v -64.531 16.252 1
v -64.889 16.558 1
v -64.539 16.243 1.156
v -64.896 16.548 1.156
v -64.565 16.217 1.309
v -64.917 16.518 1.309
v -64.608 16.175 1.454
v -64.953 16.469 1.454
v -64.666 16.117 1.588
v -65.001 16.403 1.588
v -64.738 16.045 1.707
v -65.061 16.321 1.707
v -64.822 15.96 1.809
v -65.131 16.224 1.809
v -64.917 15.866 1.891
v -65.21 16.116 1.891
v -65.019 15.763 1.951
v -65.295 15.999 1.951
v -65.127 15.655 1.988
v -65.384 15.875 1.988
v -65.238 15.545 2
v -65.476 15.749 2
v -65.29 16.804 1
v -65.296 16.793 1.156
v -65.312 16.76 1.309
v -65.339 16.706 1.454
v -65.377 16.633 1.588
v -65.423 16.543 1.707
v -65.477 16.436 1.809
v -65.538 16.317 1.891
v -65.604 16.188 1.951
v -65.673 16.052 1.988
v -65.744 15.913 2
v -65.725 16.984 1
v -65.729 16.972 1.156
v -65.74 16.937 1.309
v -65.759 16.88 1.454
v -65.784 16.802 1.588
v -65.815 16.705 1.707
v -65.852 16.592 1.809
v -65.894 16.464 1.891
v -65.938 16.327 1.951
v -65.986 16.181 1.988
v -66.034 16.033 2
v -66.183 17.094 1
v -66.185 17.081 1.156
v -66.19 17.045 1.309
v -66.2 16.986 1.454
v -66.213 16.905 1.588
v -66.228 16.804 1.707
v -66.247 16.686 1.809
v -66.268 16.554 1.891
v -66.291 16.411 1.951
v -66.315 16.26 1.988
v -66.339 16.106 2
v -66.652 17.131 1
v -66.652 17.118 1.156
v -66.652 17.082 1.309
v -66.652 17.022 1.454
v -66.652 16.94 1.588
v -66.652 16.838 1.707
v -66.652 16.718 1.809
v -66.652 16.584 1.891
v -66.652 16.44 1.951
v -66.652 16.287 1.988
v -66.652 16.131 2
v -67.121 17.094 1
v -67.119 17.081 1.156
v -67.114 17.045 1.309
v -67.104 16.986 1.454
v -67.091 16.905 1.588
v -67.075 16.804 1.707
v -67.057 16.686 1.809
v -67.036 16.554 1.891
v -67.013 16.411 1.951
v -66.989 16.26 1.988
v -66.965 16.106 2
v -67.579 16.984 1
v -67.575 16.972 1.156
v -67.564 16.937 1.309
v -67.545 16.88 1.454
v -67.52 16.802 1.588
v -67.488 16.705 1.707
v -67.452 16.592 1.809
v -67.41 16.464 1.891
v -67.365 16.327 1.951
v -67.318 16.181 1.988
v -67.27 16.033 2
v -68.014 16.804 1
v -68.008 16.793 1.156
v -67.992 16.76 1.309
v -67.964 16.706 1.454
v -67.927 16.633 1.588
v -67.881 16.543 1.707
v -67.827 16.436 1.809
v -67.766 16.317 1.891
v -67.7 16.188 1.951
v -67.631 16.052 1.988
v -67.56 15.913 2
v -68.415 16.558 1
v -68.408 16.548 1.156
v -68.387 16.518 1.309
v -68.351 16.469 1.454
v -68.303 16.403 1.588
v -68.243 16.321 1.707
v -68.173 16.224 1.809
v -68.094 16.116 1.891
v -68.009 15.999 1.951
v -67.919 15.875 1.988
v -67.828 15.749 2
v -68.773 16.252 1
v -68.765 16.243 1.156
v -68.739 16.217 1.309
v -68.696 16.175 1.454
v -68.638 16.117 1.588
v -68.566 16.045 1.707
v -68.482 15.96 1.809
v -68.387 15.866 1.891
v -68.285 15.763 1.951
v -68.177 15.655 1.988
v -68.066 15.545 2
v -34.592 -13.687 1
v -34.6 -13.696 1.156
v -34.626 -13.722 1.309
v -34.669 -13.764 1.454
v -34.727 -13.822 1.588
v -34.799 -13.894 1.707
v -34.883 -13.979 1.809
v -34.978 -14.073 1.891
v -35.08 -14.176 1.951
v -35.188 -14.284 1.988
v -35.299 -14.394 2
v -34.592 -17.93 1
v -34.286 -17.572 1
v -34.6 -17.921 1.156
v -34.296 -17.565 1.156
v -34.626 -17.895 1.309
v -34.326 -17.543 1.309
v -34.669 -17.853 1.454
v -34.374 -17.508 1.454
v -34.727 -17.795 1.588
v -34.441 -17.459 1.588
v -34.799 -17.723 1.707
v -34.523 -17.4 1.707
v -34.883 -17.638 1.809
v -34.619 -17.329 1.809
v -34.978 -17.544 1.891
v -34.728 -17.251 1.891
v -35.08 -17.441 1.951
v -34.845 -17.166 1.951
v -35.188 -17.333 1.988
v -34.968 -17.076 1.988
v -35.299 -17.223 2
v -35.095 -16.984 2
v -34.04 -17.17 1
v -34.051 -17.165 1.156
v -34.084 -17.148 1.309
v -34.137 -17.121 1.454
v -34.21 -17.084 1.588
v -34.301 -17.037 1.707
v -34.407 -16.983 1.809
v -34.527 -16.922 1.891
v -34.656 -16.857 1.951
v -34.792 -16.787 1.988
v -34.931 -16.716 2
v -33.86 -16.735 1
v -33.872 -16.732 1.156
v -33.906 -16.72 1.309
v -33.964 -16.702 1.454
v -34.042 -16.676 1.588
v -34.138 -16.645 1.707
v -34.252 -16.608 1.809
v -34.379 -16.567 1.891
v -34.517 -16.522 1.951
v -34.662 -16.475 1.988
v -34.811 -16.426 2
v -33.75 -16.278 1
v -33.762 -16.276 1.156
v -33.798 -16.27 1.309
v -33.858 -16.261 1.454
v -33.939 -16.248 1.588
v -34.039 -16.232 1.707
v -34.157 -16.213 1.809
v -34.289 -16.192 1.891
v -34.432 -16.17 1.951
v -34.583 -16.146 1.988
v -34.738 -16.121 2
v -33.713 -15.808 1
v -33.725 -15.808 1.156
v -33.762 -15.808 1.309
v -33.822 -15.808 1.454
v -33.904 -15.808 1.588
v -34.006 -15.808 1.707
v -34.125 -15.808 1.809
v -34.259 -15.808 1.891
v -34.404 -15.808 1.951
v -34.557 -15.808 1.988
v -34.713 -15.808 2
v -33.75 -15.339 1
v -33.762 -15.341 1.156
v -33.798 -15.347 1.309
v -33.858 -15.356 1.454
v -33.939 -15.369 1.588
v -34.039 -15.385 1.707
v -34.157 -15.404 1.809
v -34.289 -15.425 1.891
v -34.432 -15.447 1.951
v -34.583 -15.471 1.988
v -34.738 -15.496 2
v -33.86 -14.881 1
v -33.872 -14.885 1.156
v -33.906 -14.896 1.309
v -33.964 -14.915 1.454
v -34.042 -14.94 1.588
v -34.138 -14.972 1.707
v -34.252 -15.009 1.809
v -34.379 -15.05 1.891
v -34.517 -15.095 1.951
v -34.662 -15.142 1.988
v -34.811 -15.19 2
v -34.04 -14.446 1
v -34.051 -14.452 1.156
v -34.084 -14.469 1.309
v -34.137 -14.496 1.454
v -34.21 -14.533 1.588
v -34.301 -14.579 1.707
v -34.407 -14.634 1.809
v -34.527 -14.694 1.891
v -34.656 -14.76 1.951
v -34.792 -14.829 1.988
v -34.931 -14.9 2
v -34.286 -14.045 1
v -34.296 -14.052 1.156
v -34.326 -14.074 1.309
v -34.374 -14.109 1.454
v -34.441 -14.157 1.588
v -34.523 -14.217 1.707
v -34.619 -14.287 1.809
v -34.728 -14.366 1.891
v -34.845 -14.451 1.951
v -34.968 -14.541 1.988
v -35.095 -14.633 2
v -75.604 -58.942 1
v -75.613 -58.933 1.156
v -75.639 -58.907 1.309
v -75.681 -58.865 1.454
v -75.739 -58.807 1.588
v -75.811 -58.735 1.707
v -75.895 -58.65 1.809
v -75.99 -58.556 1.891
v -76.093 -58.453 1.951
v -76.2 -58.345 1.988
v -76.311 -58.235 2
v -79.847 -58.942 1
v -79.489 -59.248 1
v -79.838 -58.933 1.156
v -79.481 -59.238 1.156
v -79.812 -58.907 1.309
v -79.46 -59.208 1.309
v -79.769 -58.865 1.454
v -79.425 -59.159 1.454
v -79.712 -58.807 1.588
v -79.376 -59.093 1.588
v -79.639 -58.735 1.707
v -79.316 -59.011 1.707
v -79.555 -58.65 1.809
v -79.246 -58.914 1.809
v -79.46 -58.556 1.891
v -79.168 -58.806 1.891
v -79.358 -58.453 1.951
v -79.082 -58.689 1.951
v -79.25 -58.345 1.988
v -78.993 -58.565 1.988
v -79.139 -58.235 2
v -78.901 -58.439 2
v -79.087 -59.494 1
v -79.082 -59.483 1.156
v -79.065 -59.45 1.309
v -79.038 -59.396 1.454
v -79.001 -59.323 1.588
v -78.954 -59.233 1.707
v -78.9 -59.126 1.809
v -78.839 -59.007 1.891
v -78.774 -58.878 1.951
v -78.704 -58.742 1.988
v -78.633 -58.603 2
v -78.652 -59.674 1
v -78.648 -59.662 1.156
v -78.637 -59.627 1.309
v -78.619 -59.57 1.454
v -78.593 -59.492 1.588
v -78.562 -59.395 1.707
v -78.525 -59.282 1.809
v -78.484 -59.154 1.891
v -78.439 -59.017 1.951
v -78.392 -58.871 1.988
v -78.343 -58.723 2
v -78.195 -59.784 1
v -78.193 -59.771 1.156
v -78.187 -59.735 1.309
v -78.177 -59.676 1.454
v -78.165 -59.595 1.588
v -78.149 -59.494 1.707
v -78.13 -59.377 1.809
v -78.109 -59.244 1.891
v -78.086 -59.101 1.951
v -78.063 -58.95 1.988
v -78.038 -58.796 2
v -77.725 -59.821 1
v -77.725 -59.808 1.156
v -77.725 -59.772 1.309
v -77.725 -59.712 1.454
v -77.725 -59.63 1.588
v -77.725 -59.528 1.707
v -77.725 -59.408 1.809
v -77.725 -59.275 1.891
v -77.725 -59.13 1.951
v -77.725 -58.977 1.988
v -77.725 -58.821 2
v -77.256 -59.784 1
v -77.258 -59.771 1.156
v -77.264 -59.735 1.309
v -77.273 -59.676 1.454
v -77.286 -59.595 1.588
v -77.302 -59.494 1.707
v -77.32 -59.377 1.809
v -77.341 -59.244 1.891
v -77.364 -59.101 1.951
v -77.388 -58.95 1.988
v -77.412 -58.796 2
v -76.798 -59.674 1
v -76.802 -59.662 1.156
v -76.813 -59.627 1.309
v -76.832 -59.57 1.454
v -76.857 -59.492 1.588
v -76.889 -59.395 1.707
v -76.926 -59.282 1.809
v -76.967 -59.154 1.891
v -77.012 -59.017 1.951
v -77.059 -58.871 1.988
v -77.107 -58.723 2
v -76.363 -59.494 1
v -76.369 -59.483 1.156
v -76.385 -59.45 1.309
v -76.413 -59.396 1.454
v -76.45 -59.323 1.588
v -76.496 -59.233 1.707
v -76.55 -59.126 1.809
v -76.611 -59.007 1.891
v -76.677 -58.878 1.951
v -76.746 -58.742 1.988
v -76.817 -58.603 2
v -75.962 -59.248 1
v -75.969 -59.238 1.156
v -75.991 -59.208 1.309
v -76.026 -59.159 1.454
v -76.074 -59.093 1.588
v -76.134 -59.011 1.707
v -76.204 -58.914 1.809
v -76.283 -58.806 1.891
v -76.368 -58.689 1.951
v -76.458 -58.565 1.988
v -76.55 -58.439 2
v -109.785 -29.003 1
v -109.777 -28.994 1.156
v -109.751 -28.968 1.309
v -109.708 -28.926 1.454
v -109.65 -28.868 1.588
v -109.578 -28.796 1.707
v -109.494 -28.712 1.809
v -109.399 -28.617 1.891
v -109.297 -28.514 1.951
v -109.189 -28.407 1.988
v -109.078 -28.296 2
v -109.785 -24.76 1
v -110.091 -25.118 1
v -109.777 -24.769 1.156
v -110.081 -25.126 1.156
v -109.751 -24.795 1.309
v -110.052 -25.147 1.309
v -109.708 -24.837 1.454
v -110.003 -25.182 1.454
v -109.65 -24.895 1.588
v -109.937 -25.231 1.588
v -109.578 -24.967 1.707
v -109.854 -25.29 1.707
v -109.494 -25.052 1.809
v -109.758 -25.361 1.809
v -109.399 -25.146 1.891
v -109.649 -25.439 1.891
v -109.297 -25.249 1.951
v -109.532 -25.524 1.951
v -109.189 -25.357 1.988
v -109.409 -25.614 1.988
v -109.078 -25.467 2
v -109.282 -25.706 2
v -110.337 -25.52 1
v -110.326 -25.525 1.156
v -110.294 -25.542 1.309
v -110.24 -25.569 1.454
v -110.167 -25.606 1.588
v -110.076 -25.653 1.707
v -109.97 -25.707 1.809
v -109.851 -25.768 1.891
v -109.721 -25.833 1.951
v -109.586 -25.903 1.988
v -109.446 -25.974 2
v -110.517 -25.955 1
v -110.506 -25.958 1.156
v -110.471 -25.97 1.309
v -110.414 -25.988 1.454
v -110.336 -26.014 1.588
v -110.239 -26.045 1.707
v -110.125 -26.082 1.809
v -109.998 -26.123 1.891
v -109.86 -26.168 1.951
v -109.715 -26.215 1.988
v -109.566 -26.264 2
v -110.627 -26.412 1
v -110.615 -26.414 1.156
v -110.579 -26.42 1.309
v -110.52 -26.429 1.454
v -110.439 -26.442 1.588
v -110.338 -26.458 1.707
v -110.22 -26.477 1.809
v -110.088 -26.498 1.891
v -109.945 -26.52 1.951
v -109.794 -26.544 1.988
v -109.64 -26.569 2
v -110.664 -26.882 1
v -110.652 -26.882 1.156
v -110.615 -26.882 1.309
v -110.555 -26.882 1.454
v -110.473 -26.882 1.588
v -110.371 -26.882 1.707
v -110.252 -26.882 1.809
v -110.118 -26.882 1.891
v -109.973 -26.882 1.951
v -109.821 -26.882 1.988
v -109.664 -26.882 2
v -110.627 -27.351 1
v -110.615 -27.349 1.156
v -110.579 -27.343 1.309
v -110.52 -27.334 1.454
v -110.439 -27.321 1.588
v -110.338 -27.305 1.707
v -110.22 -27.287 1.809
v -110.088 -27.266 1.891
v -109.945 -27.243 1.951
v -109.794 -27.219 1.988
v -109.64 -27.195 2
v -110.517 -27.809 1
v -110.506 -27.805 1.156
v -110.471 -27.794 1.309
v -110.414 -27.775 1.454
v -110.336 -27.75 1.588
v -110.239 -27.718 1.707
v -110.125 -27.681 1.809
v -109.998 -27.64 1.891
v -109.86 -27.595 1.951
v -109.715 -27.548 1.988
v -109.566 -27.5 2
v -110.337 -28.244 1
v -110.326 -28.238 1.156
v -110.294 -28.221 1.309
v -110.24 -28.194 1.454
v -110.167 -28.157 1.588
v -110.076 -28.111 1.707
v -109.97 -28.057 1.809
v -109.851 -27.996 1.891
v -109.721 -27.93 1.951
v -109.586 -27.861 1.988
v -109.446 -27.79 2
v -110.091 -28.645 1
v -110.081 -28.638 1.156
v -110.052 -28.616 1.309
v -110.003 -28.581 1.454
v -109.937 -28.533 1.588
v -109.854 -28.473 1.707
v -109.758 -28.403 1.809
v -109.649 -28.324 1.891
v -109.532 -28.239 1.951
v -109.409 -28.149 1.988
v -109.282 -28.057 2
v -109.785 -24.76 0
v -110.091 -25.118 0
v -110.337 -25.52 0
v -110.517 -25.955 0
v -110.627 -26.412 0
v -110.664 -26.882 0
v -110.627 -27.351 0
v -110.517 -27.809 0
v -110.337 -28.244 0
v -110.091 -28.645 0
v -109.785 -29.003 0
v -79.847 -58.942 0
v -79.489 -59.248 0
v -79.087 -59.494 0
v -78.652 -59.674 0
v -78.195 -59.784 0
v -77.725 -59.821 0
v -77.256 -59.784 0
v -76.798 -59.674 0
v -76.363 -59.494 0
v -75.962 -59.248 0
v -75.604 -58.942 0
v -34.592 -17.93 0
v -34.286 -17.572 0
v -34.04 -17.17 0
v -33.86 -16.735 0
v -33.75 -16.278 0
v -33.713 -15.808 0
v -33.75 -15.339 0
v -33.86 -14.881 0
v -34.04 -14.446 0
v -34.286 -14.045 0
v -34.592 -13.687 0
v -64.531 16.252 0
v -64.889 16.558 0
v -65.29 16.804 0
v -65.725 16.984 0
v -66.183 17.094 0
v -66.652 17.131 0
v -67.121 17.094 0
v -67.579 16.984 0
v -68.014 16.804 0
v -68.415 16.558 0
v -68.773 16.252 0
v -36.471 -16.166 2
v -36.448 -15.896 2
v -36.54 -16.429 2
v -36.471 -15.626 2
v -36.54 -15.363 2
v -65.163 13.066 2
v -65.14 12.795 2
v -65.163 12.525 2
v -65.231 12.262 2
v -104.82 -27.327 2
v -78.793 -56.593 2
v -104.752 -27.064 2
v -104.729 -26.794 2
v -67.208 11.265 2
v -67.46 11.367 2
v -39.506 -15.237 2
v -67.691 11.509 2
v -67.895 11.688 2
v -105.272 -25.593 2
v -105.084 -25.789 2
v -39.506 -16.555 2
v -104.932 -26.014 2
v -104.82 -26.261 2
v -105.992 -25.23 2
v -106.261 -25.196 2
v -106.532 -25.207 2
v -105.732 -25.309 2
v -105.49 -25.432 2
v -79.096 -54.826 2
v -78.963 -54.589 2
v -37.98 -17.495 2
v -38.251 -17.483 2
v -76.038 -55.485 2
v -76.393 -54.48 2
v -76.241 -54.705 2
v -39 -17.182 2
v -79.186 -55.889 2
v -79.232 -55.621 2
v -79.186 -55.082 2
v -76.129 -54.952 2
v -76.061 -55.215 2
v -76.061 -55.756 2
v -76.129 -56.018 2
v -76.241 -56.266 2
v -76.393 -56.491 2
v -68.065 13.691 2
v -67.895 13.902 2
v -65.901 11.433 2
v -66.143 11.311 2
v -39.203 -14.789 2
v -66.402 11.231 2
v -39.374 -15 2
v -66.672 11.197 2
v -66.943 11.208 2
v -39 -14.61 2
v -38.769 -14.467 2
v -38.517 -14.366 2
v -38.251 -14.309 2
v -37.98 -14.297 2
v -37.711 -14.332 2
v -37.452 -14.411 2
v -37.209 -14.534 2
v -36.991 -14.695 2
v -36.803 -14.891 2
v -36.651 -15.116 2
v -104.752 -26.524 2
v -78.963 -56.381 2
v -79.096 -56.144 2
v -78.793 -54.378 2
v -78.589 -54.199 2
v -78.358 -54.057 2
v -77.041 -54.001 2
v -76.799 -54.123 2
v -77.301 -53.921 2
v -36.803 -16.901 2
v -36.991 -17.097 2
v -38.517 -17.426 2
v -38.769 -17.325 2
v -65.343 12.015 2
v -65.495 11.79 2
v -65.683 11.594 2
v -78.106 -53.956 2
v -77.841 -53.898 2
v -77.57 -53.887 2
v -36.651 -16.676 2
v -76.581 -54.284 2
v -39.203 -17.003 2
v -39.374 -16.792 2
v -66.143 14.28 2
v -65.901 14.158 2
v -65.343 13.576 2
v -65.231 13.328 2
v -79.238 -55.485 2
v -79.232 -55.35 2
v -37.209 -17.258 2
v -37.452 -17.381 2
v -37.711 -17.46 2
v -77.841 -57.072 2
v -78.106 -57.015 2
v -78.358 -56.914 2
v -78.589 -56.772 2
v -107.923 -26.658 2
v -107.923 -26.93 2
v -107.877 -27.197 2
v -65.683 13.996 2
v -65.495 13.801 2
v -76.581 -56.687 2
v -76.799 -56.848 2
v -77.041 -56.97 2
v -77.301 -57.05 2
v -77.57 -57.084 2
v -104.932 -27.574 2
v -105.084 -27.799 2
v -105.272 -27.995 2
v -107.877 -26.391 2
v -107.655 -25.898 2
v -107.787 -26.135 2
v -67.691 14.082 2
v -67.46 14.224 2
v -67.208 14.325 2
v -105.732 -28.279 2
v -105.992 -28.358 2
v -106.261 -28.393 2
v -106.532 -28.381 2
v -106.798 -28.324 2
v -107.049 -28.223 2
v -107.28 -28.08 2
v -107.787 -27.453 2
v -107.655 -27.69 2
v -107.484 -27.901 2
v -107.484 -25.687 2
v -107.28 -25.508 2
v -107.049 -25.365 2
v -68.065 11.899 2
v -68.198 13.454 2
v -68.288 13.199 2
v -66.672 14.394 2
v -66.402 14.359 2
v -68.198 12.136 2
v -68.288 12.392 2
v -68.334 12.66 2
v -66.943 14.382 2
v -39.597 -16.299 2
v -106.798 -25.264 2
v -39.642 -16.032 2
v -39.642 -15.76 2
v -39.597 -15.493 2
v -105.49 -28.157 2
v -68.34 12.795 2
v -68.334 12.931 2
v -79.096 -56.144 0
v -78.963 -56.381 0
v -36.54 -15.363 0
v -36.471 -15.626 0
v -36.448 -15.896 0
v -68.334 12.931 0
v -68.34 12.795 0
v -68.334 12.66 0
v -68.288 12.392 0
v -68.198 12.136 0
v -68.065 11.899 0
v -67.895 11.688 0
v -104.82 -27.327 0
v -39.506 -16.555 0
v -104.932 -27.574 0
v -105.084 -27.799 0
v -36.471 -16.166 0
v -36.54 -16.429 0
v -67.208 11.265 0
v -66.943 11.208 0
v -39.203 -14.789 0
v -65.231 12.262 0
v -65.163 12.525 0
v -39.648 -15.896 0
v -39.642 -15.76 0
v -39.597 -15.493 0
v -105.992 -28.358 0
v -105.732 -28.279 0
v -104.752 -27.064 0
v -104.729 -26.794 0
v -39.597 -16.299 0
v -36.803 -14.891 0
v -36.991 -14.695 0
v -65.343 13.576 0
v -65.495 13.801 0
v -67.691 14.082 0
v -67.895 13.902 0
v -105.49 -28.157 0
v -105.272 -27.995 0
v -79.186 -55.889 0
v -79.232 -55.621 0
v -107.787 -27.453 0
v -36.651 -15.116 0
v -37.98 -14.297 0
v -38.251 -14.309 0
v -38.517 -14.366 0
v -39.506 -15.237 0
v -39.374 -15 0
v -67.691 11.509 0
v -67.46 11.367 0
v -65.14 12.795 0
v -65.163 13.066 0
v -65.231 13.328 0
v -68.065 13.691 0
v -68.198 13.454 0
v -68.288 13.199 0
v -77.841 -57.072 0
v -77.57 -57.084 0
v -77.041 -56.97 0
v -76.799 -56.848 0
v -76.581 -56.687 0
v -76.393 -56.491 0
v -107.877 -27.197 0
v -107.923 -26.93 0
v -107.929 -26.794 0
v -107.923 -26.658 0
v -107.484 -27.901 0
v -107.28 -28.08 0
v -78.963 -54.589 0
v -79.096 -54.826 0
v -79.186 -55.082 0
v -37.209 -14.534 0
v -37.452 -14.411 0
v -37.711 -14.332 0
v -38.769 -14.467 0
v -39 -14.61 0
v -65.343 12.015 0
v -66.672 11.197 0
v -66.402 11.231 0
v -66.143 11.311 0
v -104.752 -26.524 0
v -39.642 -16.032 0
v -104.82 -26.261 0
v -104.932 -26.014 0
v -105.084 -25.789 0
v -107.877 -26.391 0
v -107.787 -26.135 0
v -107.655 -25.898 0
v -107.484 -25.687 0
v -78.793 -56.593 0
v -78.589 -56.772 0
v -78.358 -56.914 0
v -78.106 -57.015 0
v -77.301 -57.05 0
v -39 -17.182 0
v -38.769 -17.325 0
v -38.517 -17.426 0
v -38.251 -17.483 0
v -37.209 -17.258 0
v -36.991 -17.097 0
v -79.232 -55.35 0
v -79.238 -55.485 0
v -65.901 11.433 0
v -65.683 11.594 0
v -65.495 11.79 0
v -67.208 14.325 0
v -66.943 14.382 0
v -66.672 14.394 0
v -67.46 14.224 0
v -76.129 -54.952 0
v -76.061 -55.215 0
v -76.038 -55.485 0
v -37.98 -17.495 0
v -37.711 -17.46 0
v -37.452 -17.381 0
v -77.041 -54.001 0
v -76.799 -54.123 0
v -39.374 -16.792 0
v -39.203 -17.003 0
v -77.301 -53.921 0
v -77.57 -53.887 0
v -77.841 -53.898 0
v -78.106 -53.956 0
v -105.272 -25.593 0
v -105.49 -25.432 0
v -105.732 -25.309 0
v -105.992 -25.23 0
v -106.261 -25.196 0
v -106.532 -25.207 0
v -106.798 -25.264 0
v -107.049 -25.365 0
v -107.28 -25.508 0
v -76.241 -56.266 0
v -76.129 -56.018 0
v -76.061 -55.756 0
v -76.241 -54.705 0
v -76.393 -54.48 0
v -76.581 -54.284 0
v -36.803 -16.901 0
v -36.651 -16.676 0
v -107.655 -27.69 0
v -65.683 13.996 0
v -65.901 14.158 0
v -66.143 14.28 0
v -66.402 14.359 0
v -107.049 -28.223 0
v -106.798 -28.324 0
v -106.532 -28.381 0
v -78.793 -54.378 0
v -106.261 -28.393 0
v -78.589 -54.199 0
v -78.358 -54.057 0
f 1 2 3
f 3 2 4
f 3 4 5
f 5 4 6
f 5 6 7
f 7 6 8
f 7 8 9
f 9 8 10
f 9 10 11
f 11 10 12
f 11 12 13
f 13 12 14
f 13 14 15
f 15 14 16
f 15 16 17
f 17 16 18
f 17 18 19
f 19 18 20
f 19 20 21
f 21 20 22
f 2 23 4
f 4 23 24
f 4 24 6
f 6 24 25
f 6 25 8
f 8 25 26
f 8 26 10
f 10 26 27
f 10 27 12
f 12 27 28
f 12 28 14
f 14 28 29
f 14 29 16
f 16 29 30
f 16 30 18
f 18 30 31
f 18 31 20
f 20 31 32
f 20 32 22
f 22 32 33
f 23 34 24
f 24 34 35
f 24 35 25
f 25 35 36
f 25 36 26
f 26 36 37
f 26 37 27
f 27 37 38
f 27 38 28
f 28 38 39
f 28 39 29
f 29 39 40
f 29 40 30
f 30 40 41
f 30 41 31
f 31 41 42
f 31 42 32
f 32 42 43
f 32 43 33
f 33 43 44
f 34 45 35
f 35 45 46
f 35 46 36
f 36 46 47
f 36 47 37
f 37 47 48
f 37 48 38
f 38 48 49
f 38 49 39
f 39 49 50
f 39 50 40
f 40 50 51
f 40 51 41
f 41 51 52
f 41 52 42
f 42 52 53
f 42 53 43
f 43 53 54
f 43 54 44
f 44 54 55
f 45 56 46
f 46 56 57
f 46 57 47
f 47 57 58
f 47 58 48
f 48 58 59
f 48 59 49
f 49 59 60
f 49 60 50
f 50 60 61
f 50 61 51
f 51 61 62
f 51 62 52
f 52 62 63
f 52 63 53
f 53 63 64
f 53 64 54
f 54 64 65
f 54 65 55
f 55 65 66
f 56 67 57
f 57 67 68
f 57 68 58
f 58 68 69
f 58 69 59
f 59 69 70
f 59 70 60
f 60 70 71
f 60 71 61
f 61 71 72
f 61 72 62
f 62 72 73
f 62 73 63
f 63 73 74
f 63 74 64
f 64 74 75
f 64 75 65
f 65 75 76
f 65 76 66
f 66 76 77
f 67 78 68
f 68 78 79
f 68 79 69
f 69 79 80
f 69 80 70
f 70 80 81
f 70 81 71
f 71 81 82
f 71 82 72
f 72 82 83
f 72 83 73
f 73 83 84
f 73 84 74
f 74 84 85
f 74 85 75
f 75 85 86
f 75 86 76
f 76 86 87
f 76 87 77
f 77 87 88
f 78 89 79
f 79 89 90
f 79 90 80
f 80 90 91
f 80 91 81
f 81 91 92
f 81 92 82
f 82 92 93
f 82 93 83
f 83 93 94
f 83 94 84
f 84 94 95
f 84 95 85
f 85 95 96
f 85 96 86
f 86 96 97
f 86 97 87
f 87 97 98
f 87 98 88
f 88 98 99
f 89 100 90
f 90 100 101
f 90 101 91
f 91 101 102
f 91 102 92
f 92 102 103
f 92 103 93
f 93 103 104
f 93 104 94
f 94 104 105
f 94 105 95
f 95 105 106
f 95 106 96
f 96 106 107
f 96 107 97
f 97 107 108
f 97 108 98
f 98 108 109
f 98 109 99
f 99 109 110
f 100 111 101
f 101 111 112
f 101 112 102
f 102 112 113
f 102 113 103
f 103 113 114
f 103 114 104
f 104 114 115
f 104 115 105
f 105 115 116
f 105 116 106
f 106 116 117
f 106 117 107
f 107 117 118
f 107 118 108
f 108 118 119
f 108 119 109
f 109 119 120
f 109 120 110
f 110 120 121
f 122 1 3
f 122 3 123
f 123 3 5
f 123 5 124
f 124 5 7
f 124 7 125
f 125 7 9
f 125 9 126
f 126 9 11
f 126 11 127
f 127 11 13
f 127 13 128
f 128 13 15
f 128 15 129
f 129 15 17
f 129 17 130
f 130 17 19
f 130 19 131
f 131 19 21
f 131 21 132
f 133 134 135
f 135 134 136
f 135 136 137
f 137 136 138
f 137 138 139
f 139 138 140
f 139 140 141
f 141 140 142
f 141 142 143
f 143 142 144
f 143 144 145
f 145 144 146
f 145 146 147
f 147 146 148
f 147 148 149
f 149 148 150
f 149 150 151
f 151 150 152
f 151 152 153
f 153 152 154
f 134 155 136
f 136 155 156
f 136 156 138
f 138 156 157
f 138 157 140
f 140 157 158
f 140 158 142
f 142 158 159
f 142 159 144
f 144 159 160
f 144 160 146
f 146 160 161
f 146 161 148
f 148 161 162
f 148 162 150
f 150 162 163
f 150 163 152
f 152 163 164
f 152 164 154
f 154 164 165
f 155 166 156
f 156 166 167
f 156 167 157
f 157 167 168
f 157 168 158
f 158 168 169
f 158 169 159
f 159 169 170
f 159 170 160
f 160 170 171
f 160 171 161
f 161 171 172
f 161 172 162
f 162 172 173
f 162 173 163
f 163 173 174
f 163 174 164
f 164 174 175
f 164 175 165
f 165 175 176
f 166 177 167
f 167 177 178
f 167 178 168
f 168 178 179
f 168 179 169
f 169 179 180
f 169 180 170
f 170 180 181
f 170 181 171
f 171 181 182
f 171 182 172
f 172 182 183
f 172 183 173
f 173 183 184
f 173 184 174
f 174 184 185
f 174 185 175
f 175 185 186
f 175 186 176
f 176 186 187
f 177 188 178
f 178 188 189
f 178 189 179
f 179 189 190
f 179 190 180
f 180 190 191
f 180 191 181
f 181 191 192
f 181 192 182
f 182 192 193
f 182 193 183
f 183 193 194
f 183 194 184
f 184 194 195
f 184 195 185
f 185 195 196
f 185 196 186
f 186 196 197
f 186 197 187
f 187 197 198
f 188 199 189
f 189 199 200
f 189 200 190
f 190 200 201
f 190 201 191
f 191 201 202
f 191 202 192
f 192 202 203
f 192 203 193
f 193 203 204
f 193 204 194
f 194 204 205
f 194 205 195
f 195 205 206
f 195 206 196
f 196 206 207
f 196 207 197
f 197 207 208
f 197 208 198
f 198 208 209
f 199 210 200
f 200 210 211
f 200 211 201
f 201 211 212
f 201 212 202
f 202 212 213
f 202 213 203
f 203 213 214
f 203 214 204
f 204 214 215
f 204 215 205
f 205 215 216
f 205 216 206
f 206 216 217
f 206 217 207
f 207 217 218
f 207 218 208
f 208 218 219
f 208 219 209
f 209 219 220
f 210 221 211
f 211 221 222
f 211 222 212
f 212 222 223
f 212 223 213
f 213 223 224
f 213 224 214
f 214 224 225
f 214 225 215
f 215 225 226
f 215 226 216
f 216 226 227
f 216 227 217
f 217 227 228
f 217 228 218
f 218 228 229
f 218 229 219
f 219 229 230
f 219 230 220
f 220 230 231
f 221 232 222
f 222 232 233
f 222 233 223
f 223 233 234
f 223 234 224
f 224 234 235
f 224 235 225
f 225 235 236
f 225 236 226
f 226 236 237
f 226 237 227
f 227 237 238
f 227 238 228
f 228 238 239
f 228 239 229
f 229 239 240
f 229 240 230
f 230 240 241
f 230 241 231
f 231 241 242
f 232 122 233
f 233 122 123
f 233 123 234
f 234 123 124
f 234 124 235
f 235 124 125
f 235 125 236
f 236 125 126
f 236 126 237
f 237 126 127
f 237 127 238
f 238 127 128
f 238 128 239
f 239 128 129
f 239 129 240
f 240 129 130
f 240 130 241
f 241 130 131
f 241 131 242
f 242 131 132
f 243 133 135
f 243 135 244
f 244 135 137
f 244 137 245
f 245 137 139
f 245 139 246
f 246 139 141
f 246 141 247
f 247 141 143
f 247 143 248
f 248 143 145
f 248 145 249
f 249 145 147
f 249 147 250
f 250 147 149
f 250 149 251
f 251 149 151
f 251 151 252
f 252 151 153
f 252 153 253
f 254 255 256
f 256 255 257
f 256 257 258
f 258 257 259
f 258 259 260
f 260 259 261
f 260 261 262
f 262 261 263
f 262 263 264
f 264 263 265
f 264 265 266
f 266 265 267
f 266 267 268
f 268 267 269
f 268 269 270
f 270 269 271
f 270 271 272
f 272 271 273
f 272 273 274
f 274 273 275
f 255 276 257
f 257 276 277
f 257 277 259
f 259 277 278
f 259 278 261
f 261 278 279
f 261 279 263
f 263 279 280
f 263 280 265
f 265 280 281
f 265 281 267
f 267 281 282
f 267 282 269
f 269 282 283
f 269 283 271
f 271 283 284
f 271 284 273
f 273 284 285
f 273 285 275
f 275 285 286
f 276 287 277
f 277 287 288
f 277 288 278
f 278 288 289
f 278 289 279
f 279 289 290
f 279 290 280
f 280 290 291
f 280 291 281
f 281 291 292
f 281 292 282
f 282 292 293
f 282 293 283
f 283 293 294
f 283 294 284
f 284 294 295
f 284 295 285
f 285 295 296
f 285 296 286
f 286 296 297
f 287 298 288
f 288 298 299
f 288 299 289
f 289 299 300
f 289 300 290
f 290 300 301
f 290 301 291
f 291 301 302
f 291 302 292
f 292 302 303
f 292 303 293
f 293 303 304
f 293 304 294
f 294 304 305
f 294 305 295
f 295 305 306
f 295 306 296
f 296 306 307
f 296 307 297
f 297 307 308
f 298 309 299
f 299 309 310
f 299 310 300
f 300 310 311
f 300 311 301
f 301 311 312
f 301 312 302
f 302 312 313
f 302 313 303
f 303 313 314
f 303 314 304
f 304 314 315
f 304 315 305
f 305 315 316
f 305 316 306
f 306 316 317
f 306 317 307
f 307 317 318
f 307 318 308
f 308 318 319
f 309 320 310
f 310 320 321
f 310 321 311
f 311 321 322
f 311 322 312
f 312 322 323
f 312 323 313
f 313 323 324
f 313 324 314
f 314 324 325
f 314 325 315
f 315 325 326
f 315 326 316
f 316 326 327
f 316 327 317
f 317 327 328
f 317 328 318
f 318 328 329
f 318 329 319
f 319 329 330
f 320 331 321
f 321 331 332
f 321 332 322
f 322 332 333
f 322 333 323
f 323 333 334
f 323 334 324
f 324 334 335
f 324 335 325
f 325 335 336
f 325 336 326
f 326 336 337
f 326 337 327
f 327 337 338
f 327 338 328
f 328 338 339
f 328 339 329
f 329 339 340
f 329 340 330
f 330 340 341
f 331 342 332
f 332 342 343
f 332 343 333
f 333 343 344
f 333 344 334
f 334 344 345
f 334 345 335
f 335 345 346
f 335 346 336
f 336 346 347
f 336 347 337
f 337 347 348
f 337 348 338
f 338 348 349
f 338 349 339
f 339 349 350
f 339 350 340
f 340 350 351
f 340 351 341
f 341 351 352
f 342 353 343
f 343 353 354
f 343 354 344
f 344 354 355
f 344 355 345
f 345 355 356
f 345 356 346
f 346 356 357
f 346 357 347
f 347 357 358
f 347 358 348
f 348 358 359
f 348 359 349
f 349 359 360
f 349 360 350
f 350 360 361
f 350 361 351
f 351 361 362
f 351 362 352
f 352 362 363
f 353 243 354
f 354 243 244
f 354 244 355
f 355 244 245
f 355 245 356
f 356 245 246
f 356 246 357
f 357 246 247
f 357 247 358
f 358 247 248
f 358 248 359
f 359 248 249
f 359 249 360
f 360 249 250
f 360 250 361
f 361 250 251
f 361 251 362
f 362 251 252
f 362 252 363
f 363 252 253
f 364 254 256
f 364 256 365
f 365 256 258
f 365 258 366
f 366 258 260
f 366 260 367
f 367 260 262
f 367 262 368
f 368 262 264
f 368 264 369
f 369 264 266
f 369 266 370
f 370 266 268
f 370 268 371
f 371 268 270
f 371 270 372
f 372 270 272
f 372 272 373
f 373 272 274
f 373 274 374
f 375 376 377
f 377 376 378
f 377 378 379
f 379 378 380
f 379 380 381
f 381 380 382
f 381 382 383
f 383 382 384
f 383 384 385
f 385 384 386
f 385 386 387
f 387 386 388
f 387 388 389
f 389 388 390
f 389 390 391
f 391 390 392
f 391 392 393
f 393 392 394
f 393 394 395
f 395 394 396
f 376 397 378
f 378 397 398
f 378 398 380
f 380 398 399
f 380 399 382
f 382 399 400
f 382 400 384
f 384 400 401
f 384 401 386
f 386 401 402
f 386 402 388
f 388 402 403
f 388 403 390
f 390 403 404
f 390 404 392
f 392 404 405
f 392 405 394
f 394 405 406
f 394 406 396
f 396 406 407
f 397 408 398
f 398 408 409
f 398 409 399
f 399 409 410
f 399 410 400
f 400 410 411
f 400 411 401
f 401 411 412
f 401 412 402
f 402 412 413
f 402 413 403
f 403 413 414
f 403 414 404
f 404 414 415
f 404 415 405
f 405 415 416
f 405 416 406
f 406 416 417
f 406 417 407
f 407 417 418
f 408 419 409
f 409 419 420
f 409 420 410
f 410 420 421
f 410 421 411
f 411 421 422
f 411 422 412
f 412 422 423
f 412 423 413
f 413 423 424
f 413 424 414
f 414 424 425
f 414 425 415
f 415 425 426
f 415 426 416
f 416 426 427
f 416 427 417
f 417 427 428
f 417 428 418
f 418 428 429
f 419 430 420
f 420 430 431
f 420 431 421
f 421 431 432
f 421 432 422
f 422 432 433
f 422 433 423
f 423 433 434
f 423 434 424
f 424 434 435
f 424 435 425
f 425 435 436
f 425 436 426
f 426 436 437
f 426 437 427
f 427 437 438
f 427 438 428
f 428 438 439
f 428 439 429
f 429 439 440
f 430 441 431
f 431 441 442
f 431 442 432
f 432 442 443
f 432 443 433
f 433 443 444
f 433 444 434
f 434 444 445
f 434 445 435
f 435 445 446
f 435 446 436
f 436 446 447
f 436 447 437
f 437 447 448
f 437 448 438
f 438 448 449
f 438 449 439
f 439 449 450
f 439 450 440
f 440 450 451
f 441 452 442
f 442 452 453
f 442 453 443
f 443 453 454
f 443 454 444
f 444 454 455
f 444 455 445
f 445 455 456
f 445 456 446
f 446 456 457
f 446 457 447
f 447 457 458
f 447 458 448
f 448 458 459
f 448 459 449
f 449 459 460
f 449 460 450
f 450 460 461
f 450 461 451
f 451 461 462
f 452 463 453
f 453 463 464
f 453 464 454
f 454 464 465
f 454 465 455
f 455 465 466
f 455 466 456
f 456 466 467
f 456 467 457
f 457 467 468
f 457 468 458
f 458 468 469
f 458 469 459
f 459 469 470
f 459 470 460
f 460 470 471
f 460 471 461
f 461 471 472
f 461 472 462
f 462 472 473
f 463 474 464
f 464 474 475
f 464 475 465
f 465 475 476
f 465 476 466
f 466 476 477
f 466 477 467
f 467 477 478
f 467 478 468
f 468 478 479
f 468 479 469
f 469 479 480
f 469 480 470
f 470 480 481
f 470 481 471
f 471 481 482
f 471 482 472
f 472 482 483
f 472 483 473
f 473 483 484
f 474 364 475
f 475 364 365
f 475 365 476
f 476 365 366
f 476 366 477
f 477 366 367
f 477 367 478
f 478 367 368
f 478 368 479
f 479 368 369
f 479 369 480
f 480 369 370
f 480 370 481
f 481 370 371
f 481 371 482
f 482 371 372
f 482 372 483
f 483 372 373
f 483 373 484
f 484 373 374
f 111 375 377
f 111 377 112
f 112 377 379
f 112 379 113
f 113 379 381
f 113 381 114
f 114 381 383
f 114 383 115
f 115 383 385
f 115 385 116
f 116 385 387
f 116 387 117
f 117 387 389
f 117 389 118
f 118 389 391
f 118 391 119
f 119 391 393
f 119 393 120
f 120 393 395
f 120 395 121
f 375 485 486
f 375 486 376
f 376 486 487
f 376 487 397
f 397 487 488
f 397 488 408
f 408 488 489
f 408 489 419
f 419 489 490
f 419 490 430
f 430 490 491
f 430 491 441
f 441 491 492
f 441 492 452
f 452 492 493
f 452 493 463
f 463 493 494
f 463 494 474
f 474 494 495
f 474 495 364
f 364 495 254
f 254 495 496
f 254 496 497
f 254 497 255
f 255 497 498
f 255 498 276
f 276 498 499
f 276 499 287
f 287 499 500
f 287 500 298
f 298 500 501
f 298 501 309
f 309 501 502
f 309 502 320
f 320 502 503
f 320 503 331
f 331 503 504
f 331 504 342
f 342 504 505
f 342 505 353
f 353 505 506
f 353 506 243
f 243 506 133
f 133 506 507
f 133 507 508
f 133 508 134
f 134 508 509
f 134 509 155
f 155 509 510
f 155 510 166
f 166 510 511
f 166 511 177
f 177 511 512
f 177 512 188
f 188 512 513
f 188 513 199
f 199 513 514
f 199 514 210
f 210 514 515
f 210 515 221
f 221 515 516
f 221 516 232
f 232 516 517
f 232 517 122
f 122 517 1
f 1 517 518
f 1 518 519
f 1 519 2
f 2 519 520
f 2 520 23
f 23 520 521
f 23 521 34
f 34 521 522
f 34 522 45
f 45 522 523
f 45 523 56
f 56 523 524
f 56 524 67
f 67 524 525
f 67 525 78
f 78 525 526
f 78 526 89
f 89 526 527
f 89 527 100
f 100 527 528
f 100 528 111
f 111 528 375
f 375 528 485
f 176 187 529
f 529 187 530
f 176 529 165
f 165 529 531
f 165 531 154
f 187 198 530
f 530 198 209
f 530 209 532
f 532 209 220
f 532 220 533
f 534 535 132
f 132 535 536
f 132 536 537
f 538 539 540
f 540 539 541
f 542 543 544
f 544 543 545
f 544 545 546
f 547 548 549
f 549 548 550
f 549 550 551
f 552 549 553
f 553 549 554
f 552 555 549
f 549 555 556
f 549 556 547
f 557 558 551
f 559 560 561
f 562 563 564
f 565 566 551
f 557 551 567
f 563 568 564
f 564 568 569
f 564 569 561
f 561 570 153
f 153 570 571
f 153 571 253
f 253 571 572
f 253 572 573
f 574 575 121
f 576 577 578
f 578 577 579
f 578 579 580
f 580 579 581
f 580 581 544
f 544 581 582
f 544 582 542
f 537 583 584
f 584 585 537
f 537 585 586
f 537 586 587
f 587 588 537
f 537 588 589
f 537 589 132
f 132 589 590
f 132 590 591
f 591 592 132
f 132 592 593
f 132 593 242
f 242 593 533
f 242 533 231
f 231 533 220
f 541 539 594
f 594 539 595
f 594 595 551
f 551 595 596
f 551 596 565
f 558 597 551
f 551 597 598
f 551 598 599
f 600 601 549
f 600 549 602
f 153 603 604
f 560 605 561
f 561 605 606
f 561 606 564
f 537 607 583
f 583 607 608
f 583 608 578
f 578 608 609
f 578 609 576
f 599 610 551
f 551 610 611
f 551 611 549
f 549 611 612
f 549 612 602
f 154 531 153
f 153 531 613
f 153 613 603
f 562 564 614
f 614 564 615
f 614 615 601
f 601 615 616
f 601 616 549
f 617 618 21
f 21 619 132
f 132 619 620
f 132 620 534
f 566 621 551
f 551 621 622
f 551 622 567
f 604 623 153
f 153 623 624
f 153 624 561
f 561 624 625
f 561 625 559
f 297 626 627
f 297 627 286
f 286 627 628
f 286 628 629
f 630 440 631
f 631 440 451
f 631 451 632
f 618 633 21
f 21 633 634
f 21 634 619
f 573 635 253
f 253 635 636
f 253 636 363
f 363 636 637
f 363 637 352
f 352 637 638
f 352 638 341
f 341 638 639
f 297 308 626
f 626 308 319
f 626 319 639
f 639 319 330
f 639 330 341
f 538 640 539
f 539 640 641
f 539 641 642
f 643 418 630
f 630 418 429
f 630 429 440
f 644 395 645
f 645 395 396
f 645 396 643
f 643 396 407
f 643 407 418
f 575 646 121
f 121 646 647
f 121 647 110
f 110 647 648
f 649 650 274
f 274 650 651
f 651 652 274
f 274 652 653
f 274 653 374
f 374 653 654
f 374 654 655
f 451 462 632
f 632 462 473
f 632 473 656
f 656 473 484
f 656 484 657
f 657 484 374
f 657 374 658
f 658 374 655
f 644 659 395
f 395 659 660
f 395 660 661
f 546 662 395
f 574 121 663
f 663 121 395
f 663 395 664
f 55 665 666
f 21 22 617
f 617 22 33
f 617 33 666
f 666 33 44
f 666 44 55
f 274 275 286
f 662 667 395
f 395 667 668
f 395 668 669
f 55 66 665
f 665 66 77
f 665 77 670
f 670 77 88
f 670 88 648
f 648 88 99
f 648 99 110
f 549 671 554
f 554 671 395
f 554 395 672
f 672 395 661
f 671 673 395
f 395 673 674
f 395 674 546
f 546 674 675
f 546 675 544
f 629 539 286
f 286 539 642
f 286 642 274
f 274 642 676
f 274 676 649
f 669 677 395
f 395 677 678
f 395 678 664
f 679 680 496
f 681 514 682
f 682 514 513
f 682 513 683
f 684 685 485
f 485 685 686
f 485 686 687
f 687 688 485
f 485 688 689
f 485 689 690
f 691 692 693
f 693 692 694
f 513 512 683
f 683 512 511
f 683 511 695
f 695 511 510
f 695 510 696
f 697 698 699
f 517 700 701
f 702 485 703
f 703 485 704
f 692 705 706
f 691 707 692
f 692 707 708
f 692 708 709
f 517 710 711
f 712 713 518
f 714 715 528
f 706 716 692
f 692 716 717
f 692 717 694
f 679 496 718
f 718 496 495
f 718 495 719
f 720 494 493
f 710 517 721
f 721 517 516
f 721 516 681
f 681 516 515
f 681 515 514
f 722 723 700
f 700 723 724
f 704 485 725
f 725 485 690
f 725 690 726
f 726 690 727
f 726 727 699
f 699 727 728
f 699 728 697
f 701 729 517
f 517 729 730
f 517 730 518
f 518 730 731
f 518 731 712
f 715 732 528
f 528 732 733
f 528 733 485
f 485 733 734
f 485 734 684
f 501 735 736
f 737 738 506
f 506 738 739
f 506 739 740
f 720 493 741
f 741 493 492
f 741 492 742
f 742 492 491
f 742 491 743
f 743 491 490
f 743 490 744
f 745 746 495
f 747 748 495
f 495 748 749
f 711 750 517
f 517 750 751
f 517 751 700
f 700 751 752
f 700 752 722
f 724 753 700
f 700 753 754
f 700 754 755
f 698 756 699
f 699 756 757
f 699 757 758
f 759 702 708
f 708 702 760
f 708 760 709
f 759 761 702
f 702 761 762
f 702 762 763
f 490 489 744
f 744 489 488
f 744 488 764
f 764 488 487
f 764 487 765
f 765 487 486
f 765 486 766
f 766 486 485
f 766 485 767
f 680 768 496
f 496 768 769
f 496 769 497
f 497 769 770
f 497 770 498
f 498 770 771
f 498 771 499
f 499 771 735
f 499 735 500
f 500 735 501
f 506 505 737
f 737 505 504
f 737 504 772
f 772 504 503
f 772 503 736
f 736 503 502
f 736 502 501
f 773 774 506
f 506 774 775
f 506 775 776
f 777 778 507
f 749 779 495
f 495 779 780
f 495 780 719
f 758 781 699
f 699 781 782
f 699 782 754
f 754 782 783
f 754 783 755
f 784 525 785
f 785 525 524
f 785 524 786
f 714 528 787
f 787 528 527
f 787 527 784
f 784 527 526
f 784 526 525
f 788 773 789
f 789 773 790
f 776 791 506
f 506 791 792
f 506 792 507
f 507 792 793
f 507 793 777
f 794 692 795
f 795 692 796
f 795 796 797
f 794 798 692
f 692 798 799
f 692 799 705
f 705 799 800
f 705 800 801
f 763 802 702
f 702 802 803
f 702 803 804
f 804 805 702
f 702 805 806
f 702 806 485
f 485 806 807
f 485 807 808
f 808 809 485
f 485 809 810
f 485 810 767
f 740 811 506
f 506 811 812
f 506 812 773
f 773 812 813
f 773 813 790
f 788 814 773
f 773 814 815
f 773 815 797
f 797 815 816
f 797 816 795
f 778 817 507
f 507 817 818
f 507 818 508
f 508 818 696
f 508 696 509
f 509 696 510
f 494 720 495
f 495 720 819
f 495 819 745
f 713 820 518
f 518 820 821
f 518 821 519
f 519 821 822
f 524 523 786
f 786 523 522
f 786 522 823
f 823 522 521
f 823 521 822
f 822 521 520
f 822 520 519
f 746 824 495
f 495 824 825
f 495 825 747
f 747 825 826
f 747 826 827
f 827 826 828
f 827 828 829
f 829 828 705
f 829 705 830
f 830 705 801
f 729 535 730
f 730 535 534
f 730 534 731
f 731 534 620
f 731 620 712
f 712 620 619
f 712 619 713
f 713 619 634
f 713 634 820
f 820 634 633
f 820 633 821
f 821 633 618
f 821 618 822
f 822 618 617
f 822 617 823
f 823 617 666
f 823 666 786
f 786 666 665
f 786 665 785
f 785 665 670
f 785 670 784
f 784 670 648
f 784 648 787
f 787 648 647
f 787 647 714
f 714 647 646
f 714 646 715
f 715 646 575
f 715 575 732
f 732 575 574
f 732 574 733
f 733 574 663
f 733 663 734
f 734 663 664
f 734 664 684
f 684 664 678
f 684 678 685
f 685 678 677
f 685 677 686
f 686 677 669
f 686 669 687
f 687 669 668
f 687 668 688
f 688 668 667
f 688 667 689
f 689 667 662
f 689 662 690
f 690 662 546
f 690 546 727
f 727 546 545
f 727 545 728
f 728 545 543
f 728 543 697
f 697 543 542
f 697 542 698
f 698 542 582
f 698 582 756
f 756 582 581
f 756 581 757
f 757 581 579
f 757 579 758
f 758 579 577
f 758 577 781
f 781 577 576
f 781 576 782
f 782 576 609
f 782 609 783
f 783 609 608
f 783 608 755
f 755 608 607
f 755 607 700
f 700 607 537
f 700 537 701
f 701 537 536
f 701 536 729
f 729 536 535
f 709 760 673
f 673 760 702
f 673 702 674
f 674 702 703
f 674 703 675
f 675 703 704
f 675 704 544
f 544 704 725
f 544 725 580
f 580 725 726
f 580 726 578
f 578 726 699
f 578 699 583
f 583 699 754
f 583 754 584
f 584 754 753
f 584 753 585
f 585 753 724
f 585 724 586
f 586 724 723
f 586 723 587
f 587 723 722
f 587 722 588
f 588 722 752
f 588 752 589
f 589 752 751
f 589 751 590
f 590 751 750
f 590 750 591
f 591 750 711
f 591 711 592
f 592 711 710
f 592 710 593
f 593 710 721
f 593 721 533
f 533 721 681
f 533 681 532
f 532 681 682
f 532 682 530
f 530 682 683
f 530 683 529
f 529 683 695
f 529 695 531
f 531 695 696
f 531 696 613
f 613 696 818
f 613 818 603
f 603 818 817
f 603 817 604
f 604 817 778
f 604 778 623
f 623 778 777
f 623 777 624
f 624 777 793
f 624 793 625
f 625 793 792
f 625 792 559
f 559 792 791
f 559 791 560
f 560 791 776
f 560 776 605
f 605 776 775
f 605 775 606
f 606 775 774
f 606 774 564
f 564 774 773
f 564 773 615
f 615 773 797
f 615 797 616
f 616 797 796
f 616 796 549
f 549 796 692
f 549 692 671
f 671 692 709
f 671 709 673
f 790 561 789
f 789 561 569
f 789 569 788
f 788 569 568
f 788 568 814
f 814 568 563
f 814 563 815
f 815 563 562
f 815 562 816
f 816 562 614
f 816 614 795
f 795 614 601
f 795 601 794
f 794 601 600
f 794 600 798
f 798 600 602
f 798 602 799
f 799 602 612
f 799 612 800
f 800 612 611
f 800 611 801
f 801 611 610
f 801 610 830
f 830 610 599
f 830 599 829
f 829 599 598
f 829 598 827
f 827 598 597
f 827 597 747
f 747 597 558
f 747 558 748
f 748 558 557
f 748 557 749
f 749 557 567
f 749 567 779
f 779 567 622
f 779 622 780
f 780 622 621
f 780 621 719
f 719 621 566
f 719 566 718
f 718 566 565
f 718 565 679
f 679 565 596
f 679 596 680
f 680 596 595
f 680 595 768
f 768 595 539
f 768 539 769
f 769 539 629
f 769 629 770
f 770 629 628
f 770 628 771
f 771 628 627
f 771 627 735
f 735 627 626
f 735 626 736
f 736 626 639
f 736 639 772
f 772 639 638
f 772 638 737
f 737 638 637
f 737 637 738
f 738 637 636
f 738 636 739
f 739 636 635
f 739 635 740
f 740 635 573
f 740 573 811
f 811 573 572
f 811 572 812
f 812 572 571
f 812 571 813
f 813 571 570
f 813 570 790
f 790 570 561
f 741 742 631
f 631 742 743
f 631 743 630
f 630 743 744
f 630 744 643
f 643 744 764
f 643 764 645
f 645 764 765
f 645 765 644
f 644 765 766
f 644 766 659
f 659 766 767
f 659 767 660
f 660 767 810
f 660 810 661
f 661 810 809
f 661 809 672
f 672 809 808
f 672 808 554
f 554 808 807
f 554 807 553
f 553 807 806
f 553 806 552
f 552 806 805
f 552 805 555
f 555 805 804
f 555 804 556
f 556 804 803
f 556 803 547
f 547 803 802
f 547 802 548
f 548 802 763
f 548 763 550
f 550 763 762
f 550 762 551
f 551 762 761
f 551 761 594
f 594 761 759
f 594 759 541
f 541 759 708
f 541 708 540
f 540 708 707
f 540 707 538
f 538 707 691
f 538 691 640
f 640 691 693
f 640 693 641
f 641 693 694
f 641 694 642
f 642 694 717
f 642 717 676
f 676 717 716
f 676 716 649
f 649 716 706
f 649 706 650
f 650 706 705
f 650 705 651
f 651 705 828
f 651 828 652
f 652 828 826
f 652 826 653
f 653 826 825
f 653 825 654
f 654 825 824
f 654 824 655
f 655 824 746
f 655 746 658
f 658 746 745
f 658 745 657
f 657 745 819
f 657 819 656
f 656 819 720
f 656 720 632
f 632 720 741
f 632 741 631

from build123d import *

# Parameters (mm, degrees)
BOSS_EXTRUDE1_DEPTH = 2
CUT_EXTRUDE1_REACH  = 127.814
SKETCH2_R           = 1.6
FILLET1_R           = 1


with BuildPart() as part:
    # Sketch1 → Boss-Extrude1 (new body)
    with BuildSketch(Plane.XY):
        with BuildLine():
            Line((-75.603923459, -58.941906487), (-34.59173015, -17.929713178))
            ThreePointArc((-34.59173015, -17.929713178), (-33.713050494, -15.808392834), (-34.59173015, -13.687072491))
            Line((-34.59173015, -13.687072491), (-64.530631265, 16.251828625))
            ThreePointArc((-64.530631265, 16.251828625), (-66.651951609, 17.130508281), (-68.773271953, 16.251828625))
            Line((-68.773271953, 16.251828625), (-109.785465261, -24.760364684))
            ThreePointArc((-109.785465261, -24.760364684), (-110.664144918, -26.881685028), (-109.785465261, -29.003005371))
            Line((-109.785465261, -29.003005371), (-79.846564146, -58.941906487))
            ThreePointArc((-79.846564146, -58.941906487), (-77.725243802, -59.820586143), (-75.603923459, -58.941906487))
        make_face()
    extrude(amount=BOSS_EXTRUDE1_DEPTH)

    # Sketch2 → Cut-Extrude1 (cut, up to next)
    with BuildSketch(Plane.XY.offset(2), mode=Mode.PRIVATE) as cut_extrude1_sk1:
        with Locations((-106.329000575, -26.794058815)):
            Circle(SKETCH2_R)
    cut_extrude1_tool1 = extrude(cut_extrude1_sk1.sketch, amount=-CUT_EXTRUDE1_REACH, mode=Mode.PRIVATE) & part.part
    # Sketch2 → Cut-Extrude1 (cut, up to next)
    with BuildSketch(Plane.XY.offset(2), mode=Mode.PRIVATE) as cut_extrude1_sk2:
        with Locations(Location((-77.63761759, -55.4854418, 0), (0, 0, 180))):
            Circle(SKETCH2_R)
    cut_extrude1_tool2 = extrude(cut_extrude1_sk2.sketch, amount=-CUT_EXTRUDE1_REACH, mode=Mode.PRIVATE) & part.part
    # Sketch2 → Cut-Extrude1 (cut, up to next)
    with BuildSketch(Plane.XY.offset(2), mode=Mode.PRIVATE) as cut_extrude1_sk3:
        with Locations((-38.048194837, -15.896019047)):
            Circle(SKETCH2_R)
    cut_extrude1_tool3 = extrude(cut_extrude1_sk3.sketch, amount=-CUT_EXTRUDE1_REACH, mode=Mode.PRIVATE) & part.part
    # Sketch2 → Cut-Extrude1 (cut, up to next)
    with BuildSketch(Plane.XY.offset(2), mode=Mode.PRIVATE) as cut_extrude1_sk4:
        with Locations(Location((-66.739577822, 12.795363938, 0), (0, 0, 180))):
            Circle(SKETCH2_R)
    cut_extrude1_tool4 = extrude(cut_extrude1_sk4.sketch, amount=-CUT_EXTRUDE1_REACH, mode=Mode.PRIVATE) & part.part
    add(cut_extrude1_tool1.solids().sort_by_distance((-106.329001, -26.794059, 2))[0], mode=Mode.SUBTRACT)
    add(cut_extrude1_tool2.solids().sort_by_distance((-77.637618, -55.485442, 2))[0], mode=Mode.SUBTRACT)
    add(cut_extrude1_tool3.solids().sort_by_distance((-38.048195, -15.896019, 2))[0], mode=Mode.SUBTRACT)
    add(cut_extrude1_tool4.solids().sort_by_distance((-66.739578, 12.795364, 2))[0], mode=Mode.SUBTRACT)

    # Fillet1
    fillet1_edges = [part.edges().sort_by_distance(p)[0] for p in [
        (-77.725243802, -59.820586143, 2),
        (-55.097826804, -38.435809832, 2),
        (-33.713050494, -15.808392834, 2),
        (-49.561180708, 1.282378067, 2),
        (-66.651951609, 17.130508281, 2),
        (-89.279368607, -4.25426803, 2),
        (-110.664144918, -26.881685028, 2),
        (-94.816014704, -43.972455929, 2),
    ]]
    fillet(fillet1_edges, radius=FILLET1_R)


solid = part.part
